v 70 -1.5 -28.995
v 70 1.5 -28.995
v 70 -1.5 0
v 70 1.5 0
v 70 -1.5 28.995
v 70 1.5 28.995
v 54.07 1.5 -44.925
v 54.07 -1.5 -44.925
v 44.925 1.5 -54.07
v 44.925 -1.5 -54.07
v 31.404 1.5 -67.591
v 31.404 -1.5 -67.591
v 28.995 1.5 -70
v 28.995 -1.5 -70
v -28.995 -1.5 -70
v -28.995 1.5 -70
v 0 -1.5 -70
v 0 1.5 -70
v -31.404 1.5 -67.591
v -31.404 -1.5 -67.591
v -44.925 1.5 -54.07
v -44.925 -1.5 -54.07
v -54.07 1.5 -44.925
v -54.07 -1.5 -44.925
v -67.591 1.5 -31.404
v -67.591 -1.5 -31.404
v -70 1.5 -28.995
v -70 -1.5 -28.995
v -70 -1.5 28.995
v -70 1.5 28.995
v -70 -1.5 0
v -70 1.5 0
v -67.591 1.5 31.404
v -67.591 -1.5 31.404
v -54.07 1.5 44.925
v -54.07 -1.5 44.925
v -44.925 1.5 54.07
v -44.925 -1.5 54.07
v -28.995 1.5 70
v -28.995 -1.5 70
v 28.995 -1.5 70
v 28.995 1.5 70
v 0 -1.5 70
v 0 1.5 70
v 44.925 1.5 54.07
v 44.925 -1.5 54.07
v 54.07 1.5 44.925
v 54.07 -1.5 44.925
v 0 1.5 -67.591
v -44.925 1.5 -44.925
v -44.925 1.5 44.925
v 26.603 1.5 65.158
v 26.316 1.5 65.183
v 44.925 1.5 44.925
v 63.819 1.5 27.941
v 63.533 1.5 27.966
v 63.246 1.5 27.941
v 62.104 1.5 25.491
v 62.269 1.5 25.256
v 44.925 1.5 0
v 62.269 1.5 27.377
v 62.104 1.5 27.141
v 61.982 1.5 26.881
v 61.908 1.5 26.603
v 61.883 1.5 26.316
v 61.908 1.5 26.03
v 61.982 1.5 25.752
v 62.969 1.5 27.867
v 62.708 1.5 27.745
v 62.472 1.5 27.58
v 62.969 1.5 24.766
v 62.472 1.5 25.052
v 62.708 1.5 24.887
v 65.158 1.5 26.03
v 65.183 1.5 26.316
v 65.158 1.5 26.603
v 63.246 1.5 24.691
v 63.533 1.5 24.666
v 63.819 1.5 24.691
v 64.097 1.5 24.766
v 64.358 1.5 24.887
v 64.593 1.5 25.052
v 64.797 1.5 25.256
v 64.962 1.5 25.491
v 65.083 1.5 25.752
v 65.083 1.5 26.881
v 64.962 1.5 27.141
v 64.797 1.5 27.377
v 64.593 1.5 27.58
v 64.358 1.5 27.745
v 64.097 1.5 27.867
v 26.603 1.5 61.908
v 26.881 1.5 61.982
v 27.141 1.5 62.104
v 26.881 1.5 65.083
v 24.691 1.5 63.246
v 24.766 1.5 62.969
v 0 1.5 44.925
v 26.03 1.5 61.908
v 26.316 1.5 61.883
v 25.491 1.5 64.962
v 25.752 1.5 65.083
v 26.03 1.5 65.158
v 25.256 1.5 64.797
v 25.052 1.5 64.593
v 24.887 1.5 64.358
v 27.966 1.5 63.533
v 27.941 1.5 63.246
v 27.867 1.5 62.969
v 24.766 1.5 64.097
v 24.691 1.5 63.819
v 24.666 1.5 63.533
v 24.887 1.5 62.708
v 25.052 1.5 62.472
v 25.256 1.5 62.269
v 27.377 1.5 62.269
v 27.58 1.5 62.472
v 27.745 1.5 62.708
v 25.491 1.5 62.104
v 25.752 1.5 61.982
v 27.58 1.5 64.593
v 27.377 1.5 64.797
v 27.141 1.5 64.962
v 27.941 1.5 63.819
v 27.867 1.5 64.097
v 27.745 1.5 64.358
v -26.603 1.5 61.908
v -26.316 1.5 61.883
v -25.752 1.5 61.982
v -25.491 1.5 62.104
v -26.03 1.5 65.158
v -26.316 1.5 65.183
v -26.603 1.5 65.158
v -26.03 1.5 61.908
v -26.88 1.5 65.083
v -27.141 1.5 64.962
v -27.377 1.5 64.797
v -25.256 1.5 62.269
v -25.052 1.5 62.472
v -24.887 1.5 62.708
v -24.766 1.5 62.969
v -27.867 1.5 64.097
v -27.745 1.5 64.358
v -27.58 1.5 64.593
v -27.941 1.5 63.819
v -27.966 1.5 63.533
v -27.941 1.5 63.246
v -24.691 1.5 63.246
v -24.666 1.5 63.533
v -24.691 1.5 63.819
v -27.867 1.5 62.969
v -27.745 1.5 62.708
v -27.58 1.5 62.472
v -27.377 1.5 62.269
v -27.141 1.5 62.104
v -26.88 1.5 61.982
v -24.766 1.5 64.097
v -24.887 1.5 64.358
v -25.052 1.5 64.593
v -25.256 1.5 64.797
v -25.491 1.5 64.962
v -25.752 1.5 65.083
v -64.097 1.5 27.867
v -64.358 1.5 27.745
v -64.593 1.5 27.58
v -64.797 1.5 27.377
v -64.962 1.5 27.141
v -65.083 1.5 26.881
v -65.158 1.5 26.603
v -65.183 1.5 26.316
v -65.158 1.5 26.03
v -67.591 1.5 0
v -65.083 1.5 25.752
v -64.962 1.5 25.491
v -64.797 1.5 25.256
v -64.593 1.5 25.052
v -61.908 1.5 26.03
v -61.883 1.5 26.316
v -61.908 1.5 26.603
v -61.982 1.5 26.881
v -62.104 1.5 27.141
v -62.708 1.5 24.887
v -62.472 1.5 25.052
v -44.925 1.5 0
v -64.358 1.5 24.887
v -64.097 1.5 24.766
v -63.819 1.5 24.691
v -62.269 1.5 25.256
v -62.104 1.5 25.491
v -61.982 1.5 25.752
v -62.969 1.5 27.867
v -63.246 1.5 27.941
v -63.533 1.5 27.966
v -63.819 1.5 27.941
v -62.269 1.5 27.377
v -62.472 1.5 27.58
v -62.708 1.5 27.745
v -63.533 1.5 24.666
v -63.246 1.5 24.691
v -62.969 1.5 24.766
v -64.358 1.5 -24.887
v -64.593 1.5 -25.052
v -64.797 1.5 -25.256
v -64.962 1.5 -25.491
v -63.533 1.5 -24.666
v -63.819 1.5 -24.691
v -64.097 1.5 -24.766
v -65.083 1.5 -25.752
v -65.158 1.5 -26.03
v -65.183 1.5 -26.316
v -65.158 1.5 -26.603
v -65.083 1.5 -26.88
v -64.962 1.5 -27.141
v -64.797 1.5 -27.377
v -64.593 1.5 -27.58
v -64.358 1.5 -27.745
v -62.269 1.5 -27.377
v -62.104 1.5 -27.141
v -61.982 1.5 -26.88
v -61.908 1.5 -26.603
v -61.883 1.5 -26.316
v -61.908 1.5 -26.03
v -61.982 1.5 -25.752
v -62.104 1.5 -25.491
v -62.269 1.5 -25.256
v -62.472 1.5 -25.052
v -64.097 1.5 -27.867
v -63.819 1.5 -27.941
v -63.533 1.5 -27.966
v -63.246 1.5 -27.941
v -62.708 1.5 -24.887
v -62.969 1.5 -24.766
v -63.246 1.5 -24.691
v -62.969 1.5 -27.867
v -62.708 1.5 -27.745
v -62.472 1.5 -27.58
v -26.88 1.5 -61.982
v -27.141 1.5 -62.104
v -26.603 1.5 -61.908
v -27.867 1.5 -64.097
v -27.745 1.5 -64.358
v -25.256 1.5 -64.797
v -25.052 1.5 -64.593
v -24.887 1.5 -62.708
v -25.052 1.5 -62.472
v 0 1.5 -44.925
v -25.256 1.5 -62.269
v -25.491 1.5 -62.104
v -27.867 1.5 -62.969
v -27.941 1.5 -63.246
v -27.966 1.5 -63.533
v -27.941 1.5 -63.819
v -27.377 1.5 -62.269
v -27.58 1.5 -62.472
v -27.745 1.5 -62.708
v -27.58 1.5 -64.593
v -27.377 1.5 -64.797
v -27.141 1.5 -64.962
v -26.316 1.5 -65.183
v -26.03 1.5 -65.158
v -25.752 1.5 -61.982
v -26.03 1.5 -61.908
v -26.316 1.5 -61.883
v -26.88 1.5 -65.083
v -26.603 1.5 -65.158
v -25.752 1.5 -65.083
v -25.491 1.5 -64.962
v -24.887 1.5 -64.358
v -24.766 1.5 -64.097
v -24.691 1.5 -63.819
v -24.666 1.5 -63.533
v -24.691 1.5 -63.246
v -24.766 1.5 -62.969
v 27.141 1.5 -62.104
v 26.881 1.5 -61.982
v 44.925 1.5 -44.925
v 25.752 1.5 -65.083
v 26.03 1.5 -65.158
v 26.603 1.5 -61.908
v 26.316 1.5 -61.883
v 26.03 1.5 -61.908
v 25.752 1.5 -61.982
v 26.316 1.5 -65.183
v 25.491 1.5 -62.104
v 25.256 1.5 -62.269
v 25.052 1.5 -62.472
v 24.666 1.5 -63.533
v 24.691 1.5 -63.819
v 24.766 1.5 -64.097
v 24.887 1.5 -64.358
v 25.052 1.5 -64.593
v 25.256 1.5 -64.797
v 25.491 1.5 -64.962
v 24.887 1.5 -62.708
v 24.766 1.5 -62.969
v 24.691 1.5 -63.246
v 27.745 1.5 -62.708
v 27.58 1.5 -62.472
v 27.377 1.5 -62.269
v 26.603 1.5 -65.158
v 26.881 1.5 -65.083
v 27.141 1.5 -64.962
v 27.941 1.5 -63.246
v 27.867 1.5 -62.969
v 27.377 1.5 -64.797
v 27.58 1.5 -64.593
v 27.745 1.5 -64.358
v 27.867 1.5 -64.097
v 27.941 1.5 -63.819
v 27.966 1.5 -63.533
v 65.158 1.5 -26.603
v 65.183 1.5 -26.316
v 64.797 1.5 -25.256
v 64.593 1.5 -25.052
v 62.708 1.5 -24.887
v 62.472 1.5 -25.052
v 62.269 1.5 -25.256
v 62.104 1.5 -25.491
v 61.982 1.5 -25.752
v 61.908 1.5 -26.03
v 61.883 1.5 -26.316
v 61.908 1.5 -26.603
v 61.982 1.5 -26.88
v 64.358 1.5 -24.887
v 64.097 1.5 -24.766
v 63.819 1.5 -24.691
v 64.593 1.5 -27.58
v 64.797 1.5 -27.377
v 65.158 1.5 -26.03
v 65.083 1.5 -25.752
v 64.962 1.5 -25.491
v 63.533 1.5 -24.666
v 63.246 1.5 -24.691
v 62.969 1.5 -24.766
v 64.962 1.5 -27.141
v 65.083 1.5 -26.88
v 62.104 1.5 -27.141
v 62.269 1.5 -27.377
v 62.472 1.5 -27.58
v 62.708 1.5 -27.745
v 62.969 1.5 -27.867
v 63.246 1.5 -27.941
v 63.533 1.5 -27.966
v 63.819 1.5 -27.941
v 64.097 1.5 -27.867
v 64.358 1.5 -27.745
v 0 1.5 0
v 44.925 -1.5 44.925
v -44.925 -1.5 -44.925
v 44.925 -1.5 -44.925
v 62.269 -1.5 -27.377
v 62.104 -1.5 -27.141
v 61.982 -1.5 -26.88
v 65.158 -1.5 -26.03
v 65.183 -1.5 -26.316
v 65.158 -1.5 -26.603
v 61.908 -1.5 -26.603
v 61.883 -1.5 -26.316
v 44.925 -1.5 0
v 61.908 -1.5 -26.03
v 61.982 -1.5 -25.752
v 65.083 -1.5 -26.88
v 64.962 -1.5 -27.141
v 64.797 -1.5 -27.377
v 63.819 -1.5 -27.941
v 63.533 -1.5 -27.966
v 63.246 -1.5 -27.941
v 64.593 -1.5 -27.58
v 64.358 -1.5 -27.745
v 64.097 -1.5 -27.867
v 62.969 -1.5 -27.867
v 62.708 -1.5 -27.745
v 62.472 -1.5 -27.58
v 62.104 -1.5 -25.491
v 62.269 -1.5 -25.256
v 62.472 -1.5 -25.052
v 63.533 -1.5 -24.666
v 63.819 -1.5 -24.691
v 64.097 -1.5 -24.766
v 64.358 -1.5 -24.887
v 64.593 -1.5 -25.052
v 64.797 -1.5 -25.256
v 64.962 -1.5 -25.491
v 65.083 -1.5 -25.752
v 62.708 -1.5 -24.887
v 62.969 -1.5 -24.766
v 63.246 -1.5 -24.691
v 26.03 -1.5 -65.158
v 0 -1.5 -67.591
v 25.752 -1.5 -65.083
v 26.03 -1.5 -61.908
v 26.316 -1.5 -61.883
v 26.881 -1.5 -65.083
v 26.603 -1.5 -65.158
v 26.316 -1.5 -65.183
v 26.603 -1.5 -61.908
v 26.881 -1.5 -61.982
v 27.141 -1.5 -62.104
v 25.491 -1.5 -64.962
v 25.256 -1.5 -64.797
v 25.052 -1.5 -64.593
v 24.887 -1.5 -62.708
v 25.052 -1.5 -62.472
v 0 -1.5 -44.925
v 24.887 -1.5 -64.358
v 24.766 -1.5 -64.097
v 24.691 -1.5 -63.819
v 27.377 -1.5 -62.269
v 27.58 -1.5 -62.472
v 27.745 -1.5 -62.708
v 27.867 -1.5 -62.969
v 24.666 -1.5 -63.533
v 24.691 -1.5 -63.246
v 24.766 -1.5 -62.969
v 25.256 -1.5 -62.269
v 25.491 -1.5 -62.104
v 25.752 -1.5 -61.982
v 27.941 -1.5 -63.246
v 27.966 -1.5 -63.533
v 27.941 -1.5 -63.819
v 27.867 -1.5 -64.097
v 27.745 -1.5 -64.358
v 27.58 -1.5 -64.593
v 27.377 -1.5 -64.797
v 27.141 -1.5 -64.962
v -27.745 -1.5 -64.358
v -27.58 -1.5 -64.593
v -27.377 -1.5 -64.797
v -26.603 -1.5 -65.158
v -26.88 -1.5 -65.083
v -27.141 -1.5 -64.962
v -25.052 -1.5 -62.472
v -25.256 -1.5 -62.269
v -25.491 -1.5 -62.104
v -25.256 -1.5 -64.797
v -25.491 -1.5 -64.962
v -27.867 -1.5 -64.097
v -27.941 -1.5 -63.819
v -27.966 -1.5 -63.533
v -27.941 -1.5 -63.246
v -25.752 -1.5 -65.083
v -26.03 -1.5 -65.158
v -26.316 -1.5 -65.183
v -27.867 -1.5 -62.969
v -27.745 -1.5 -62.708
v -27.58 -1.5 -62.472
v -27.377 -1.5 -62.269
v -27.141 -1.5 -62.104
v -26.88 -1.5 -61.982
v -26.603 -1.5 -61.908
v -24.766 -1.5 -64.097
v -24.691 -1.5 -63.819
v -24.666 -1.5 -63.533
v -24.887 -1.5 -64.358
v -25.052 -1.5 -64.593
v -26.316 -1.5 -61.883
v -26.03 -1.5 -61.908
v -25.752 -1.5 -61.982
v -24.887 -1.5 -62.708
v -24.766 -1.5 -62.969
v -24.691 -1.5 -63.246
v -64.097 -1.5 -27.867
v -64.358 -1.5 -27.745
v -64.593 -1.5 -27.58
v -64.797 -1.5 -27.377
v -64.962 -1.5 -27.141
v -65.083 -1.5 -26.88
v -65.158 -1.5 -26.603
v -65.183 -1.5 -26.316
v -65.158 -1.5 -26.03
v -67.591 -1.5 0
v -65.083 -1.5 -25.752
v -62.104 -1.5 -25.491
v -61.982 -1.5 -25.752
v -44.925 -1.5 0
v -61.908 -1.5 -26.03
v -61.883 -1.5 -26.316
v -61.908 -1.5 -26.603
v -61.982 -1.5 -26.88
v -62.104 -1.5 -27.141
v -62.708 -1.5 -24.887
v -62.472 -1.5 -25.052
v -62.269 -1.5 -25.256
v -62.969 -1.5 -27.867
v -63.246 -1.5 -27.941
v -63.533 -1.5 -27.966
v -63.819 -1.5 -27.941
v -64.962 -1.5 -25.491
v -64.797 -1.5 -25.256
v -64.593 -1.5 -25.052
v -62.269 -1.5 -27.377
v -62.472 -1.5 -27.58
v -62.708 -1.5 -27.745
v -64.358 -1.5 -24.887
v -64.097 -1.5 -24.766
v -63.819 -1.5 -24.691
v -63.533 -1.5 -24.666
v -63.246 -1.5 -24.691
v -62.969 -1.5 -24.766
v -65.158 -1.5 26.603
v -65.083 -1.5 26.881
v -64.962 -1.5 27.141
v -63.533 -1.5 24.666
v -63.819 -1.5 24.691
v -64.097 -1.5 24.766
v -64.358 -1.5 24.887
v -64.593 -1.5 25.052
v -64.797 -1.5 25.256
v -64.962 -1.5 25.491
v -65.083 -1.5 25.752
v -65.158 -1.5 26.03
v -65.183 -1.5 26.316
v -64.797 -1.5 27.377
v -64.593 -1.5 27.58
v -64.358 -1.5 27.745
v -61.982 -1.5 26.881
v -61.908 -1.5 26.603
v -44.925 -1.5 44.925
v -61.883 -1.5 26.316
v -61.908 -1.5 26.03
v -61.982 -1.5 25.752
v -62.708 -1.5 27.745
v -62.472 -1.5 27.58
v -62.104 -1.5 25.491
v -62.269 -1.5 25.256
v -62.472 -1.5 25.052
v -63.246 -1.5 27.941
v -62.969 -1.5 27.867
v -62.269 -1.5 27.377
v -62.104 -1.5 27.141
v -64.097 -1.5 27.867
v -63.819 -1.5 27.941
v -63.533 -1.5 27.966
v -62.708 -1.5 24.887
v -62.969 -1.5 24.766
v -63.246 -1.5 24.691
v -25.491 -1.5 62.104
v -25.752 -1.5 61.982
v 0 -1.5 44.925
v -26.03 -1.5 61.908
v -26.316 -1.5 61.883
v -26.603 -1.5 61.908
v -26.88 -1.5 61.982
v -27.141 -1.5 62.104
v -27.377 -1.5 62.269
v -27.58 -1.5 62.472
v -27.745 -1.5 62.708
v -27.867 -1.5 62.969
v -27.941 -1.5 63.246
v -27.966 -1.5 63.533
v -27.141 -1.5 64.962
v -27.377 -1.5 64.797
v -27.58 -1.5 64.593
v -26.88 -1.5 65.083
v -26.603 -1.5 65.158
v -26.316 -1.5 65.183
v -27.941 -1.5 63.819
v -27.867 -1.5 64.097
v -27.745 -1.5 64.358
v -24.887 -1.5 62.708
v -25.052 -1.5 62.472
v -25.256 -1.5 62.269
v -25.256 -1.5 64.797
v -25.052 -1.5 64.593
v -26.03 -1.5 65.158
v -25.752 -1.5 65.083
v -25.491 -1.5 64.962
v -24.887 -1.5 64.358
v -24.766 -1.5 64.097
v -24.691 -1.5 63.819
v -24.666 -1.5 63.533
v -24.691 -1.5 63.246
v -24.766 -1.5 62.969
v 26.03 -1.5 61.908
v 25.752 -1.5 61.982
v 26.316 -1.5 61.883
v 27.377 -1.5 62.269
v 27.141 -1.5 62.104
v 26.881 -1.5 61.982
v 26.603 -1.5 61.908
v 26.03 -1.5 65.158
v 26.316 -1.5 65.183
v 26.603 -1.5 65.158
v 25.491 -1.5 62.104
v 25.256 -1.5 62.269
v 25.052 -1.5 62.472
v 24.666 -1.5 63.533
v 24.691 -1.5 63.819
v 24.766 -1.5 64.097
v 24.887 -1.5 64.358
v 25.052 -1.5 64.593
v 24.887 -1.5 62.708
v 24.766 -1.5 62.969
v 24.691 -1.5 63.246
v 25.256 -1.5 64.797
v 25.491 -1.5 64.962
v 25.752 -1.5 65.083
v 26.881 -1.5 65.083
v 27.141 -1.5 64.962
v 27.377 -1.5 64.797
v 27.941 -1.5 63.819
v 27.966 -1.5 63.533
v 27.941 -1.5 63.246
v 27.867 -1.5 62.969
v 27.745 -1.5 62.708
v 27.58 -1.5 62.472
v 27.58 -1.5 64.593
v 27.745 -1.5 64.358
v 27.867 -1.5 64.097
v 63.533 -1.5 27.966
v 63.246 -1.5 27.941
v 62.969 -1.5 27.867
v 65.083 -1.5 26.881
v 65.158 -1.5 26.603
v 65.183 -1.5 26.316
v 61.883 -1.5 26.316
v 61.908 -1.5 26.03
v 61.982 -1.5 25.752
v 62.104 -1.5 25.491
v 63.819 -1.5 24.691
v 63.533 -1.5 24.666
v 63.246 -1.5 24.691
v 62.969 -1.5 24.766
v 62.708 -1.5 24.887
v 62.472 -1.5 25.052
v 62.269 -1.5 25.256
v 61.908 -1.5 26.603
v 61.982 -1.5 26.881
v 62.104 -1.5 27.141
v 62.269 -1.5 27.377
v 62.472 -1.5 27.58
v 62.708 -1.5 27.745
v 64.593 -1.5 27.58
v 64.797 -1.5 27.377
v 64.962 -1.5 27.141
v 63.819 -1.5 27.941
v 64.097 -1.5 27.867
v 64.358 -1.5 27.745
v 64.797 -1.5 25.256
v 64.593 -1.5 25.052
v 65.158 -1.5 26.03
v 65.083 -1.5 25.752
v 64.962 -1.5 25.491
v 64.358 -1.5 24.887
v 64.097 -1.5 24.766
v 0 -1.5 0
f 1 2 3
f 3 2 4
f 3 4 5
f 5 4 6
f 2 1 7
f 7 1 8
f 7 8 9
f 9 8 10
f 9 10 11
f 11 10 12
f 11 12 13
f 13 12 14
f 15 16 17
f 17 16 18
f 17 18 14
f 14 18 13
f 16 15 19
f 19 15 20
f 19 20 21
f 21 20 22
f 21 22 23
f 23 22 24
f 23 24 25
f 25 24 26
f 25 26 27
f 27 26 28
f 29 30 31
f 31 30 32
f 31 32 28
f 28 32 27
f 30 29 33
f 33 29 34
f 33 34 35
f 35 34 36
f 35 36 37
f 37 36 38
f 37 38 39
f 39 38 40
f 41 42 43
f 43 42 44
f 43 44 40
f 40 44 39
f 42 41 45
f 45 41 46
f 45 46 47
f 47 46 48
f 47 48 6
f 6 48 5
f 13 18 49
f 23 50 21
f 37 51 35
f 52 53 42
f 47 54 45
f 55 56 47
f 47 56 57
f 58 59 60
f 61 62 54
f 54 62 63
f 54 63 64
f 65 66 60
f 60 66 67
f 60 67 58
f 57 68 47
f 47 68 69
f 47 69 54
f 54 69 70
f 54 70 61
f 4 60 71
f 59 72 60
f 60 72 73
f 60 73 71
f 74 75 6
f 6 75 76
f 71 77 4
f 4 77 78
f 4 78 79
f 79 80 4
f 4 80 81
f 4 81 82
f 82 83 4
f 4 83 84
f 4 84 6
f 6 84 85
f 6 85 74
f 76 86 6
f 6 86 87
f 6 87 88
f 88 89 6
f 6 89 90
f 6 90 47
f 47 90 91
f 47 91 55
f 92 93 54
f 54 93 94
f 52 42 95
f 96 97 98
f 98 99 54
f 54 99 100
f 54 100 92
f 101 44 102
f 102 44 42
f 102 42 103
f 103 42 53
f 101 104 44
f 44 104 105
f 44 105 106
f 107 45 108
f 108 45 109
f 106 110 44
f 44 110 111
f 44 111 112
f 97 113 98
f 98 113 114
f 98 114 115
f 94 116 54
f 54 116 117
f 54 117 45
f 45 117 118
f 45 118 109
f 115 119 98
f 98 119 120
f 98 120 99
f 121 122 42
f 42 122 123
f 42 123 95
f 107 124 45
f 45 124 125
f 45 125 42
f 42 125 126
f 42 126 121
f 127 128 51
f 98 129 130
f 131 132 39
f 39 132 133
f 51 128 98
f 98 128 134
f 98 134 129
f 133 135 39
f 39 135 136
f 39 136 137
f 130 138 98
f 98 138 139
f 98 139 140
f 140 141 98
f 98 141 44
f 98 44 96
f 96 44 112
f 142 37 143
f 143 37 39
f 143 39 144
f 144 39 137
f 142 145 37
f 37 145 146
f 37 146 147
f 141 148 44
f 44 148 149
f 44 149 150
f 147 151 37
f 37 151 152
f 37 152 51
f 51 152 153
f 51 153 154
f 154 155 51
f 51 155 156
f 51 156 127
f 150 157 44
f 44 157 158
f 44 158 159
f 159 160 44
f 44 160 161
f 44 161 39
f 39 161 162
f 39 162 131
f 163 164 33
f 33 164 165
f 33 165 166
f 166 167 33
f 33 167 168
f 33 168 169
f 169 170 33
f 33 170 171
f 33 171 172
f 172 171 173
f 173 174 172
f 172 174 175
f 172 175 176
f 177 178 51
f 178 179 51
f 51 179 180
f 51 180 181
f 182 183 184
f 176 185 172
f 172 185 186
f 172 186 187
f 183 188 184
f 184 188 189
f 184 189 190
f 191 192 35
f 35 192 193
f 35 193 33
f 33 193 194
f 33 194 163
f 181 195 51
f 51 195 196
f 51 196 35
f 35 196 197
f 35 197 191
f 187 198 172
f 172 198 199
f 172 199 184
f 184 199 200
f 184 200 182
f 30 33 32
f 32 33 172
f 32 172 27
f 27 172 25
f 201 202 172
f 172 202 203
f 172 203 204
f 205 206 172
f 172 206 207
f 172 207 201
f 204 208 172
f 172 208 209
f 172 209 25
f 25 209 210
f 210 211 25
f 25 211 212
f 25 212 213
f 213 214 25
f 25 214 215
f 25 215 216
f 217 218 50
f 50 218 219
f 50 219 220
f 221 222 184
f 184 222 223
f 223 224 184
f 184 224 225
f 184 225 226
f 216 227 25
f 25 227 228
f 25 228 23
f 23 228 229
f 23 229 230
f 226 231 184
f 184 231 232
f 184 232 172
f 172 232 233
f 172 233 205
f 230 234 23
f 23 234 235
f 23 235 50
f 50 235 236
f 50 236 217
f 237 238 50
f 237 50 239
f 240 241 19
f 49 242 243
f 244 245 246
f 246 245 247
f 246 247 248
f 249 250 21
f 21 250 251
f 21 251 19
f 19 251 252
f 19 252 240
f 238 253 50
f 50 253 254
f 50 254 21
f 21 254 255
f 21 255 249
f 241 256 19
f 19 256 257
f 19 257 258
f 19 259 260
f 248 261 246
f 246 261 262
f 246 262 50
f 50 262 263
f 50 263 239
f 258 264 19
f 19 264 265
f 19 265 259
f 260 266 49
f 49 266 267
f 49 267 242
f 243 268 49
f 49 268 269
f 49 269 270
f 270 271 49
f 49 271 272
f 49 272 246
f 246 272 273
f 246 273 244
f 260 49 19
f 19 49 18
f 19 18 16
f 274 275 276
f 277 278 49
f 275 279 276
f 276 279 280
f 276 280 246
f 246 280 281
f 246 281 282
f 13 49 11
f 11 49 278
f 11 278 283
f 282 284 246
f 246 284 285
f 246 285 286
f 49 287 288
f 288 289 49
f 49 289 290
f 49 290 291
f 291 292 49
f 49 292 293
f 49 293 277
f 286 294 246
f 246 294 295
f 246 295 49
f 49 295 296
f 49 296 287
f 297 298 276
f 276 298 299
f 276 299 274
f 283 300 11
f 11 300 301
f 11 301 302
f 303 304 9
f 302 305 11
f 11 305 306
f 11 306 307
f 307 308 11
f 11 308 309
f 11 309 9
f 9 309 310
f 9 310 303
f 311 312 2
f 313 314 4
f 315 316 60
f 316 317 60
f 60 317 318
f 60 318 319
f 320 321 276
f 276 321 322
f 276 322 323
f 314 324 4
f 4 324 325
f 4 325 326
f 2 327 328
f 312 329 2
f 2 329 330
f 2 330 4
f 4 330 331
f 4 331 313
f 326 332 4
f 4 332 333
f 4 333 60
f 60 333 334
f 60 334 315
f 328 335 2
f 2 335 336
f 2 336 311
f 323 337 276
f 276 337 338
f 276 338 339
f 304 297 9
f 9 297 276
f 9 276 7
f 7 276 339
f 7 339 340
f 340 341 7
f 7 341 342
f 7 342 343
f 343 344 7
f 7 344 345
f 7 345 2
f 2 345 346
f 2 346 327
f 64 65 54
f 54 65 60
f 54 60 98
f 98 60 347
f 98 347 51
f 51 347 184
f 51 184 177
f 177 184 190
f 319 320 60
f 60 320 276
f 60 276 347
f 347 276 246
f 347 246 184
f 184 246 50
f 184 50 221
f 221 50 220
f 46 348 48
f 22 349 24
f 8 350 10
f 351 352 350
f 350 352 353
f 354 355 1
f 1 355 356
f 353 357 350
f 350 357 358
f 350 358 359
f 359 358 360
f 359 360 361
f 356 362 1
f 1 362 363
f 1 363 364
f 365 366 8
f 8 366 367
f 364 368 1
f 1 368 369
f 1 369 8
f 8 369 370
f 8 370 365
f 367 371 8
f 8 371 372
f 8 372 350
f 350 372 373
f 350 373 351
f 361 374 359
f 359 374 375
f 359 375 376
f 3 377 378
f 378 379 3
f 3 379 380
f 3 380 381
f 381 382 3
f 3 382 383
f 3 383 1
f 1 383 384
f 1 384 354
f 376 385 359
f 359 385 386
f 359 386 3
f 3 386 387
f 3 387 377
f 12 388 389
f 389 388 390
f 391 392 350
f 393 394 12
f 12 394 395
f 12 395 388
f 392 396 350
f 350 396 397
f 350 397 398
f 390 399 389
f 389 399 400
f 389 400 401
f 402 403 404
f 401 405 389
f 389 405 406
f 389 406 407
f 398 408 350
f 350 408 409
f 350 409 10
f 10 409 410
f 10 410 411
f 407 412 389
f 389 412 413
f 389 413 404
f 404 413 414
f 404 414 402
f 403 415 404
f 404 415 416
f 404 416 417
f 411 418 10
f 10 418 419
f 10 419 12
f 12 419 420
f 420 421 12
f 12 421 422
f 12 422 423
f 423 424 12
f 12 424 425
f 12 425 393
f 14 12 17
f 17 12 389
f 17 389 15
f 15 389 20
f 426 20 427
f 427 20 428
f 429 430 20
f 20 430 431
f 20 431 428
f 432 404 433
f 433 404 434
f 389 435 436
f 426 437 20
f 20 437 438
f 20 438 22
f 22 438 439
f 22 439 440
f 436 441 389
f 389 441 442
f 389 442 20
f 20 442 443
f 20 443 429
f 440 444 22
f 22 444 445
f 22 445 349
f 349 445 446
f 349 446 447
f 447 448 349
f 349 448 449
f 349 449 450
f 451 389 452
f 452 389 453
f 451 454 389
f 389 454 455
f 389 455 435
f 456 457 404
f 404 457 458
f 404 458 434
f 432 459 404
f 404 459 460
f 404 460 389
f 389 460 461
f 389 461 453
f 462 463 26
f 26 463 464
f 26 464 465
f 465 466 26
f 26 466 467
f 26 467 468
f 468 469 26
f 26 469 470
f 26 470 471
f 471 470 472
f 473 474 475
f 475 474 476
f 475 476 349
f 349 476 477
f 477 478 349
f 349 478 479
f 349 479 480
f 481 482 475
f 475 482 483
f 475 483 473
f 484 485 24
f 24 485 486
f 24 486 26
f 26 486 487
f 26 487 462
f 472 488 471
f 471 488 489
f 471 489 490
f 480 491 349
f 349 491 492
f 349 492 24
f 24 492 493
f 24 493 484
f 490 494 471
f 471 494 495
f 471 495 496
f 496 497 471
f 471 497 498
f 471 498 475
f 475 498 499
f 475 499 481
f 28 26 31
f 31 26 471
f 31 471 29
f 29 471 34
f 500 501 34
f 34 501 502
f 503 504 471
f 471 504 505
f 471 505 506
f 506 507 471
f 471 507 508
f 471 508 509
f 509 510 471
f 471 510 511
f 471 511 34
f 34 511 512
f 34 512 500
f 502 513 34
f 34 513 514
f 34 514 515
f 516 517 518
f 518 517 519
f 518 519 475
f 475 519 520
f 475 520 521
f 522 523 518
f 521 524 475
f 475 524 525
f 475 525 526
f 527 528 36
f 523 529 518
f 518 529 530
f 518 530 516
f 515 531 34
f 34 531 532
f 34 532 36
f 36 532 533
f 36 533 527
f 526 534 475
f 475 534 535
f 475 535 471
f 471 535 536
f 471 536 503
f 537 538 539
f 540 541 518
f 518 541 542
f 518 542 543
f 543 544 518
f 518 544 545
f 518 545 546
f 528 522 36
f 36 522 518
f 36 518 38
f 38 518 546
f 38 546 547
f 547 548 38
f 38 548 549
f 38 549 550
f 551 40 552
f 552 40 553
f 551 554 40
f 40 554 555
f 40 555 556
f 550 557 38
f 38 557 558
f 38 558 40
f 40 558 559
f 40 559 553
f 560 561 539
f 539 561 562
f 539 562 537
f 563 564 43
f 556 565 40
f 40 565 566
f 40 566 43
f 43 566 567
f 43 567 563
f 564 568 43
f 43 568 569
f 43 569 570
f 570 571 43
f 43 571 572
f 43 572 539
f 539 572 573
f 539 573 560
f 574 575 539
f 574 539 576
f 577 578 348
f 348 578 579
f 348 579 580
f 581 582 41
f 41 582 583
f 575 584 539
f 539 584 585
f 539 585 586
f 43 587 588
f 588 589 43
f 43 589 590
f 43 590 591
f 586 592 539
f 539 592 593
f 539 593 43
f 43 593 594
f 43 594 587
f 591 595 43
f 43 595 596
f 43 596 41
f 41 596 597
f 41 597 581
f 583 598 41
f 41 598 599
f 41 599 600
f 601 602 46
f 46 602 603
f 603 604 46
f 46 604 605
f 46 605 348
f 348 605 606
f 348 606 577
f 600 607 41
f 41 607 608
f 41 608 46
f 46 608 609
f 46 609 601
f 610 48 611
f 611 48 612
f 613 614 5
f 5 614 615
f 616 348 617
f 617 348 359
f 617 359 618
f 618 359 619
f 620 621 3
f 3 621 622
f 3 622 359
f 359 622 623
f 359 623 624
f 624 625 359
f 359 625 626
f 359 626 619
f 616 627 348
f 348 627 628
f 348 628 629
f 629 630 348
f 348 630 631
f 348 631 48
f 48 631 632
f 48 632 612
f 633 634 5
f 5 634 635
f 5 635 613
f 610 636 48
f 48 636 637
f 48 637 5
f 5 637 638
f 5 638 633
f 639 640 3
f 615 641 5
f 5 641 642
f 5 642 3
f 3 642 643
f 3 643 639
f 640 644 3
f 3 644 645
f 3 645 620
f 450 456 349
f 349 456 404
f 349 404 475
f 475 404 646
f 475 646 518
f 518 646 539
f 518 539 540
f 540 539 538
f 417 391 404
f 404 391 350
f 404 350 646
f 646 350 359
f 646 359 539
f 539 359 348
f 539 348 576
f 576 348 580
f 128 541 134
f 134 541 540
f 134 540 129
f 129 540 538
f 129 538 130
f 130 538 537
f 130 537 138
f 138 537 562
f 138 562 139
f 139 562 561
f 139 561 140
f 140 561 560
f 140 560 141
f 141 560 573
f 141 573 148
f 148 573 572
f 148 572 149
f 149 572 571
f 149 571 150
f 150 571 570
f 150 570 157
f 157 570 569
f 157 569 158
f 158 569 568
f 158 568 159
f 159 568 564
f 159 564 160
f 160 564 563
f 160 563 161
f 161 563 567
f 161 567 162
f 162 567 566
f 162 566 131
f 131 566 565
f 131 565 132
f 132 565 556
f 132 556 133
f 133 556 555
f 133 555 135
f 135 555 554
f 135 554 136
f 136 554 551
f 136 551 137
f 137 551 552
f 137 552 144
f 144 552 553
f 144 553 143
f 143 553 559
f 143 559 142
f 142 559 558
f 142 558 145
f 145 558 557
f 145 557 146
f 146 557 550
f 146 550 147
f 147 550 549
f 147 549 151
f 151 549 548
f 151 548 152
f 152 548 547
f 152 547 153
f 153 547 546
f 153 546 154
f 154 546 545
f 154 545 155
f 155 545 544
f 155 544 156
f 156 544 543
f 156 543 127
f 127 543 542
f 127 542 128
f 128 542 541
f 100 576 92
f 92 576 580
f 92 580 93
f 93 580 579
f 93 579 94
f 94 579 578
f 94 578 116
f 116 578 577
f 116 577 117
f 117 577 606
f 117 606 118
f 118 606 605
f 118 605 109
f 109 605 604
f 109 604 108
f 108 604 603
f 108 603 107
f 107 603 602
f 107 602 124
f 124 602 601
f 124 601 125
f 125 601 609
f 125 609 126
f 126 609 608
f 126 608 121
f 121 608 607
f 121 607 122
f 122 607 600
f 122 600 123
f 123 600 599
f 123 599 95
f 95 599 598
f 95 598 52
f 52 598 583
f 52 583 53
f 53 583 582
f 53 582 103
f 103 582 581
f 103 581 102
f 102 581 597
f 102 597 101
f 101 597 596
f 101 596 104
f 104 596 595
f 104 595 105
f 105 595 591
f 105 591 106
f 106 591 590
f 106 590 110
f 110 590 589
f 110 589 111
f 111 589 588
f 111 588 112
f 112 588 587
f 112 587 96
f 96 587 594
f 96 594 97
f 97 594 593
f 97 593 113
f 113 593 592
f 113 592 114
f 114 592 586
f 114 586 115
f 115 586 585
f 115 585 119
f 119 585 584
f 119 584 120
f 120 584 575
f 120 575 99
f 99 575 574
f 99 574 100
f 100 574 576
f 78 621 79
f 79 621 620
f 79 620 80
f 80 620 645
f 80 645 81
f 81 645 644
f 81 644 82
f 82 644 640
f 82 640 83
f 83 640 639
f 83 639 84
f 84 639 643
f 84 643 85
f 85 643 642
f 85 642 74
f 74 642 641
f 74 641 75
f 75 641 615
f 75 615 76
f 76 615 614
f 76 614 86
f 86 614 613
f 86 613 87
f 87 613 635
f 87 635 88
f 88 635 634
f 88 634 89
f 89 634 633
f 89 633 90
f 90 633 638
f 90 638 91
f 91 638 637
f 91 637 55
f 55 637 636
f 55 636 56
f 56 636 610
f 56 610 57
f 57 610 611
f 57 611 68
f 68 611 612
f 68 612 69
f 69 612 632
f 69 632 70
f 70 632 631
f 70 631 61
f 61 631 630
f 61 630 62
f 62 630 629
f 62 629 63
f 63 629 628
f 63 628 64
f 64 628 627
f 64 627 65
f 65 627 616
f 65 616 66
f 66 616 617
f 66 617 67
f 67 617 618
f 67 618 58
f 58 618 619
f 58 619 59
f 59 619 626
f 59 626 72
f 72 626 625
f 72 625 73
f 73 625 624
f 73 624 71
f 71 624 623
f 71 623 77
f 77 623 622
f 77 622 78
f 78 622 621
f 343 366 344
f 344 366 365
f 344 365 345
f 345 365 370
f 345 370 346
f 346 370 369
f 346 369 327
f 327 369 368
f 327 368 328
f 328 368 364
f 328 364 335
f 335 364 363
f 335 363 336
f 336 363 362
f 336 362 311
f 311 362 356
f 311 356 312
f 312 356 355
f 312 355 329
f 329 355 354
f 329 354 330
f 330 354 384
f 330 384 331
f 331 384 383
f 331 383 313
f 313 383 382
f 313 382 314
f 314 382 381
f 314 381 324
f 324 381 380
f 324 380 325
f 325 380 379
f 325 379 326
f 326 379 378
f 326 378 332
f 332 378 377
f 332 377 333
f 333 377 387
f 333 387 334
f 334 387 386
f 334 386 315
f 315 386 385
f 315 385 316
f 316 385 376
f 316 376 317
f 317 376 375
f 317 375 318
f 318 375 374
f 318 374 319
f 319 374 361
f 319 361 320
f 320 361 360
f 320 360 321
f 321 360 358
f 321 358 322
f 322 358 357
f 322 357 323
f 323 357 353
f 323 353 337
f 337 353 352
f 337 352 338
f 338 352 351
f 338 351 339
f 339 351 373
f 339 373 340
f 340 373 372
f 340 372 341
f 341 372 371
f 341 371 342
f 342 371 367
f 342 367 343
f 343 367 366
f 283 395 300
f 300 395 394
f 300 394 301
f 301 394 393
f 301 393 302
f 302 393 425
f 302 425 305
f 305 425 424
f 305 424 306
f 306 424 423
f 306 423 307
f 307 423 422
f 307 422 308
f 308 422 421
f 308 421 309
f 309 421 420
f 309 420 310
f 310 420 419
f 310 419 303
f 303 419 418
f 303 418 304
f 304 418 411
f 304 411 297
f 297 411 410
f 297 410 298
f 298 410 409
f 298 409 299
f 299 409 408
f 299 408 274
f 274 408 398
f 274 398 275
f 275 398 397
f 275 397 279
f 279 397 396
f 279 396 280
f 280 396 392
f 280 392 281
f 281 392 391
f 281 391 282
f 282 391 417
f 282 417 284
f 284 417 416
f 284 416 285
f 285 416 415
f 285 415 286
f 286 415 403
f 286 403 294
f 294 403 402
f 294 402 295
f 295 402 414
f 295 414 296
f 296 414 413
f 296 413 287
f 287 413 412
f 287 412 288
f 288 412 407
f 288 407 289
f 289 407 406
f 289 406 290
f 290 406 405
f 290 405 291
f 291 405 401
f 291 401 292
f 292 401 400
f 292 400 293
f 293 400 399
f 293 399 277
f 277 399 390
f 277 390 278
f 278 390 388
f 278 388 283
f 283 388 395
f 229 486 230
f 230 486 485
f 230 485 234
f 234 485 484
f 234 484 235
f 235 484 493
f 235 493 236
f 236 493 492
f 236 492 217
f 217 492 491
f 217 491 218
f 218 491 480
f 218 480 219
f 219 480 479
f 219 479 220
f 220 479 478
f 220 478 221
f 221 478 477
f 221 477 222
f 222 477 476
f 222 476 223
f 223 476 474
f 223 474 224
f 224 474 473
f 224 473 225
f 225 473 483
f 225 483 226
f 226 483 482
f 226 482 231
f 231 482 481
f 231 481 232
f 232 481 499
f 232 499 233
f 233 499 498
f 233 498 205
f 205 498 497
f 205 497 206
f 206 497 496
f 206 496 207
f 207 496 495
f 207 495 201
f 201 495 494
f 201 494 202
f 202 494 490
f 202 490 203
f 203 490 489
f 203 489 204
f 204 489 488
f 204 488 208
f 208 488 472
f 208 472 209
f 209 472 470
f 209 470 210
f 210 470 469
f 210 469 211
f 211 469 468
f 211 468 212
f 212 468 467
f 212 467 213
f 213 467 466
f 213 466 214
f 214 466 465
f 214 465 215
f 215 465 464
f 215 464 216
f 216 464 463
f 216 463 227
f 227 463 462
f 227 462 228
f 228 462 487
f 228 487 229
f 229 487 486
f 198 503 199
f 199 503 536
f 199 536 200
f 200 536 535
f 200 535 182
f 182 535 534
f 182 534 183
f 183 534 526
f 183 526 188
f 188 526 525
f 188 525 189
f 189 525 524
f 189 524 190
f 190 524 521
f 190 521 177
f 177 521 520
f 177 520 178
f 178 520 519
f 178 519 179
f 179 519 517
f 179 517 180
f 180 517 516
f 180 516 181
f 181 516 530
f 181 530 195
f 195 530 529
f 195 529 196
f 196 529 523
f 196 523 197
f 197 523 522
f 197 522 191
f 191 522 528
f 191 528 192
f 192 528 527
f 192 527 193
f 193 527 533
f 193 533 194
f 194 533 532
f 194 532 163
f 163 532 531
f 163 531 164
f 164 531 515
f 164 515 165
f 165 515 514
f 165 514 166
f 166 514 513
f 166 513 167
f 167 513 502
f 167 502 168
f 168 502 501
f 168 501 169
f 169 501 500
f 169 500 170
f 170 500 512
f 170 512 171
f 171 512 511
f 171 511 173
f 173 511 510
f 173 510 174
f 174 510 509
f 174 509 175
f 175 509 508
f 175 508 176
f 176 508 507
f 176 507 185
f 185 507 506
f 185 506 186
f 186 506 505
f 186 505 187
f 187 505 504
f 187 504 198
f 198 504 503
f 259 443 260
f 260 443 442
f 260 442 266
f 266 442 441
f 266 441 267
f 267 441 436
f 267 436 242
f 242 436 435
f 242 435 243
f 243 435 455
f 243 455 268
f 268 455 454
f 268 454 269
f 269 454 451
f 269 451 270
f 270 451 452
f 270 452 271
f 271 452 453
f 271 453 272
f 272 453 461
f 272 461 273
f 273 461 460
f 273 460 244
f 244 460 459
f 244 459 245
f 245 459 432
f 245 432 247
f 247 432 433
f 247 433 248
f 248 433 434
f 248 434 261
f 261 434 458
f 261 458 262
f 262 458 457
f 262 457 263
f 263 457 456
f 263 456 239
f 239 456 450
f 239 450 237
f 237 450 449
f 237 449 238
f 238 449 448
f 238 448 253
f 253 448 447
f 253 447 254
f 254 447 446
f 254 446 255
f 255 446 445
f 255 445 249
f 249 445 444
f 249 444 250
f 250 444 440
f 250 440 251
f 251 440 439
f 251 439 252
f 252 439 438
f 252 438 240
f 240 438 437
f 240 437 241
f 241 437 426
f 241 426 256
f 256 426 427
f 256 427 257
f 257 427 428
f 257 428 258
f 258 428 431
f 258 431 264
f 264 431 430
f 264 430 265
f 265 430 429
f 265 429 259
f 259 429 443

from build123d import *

# Parameters (mm, degrees)
RESSALTO_EXTRUS_O1_DEPTH = 1.5
ESBO_O2_R                = 1.65
CORTE_EXTRUS_O1_DEPTH    = 100.040395799


with BuildPart() as part:
    # Esboço1 → Ressalto-extrusão1 (new, symmetric)
    with BuildSketch(Plane(origin=(0, 0, 0), x_dir=(1, 0, 0), z_dir=(0, 1, 0))):
        Polygon((70, 28.994949366), (28.994949366, 70), (-28.994949366, 70), (-70, 28.994949366), (-70, -28.994949366), (-28.994949366, -70), (28.994949366, -70), (70, -28.994949366), align=None)
    extrude(amount=RESSALTO_EXTRUS_O1_DEPTH, both=True)

    # Esboço2 → Corte-extrusão1 (cut, through all)
    with BuildSketch(Plane.XZ.offset(1.5)):
        with Locations(Location((-26.31616534, 63.532843272, 0), (0, 0, 270))):
            Circle(ESBO_O2_R)
        with Locations(Location((26.31616534, 63.532843272, 0), (0, 0, 270))):
            Circle(ESBO_O2_R)
        with Locations(Location((63.532843272, 26.31616534, 0), (0, 0, 270))):
            Circle(ESBO_O2_R)
        with Locations(Location((63.532843272, -26.31616534, 0), (0, 0, 270))):
            Circle(ESBO_O2_R)
        with Locations(Location((26.31616534, -63.532843272, 0), (0, 0, 270))):
            Circle(ESBO_O2_R)
        with Locations(Location((-26.31616534, -63.532843272, 0), (0, 0, 270))):
            Circle(ESBO_O2_R)
        with Locations(Location((-63.532843272, 26.31616534, 0), (0, 0, 270))):
            Circle(ESBO_O2_R)
        with Locations(Location((-63.532843272, -26.31616534, 0), (0, 0, 270))):
            Circle(ESBO_O2_R)
    extrude(amount=-CORTE_EXTRUS_O1_DEPTH, mode=Mode.SUBTRACT)


solid = part.part
